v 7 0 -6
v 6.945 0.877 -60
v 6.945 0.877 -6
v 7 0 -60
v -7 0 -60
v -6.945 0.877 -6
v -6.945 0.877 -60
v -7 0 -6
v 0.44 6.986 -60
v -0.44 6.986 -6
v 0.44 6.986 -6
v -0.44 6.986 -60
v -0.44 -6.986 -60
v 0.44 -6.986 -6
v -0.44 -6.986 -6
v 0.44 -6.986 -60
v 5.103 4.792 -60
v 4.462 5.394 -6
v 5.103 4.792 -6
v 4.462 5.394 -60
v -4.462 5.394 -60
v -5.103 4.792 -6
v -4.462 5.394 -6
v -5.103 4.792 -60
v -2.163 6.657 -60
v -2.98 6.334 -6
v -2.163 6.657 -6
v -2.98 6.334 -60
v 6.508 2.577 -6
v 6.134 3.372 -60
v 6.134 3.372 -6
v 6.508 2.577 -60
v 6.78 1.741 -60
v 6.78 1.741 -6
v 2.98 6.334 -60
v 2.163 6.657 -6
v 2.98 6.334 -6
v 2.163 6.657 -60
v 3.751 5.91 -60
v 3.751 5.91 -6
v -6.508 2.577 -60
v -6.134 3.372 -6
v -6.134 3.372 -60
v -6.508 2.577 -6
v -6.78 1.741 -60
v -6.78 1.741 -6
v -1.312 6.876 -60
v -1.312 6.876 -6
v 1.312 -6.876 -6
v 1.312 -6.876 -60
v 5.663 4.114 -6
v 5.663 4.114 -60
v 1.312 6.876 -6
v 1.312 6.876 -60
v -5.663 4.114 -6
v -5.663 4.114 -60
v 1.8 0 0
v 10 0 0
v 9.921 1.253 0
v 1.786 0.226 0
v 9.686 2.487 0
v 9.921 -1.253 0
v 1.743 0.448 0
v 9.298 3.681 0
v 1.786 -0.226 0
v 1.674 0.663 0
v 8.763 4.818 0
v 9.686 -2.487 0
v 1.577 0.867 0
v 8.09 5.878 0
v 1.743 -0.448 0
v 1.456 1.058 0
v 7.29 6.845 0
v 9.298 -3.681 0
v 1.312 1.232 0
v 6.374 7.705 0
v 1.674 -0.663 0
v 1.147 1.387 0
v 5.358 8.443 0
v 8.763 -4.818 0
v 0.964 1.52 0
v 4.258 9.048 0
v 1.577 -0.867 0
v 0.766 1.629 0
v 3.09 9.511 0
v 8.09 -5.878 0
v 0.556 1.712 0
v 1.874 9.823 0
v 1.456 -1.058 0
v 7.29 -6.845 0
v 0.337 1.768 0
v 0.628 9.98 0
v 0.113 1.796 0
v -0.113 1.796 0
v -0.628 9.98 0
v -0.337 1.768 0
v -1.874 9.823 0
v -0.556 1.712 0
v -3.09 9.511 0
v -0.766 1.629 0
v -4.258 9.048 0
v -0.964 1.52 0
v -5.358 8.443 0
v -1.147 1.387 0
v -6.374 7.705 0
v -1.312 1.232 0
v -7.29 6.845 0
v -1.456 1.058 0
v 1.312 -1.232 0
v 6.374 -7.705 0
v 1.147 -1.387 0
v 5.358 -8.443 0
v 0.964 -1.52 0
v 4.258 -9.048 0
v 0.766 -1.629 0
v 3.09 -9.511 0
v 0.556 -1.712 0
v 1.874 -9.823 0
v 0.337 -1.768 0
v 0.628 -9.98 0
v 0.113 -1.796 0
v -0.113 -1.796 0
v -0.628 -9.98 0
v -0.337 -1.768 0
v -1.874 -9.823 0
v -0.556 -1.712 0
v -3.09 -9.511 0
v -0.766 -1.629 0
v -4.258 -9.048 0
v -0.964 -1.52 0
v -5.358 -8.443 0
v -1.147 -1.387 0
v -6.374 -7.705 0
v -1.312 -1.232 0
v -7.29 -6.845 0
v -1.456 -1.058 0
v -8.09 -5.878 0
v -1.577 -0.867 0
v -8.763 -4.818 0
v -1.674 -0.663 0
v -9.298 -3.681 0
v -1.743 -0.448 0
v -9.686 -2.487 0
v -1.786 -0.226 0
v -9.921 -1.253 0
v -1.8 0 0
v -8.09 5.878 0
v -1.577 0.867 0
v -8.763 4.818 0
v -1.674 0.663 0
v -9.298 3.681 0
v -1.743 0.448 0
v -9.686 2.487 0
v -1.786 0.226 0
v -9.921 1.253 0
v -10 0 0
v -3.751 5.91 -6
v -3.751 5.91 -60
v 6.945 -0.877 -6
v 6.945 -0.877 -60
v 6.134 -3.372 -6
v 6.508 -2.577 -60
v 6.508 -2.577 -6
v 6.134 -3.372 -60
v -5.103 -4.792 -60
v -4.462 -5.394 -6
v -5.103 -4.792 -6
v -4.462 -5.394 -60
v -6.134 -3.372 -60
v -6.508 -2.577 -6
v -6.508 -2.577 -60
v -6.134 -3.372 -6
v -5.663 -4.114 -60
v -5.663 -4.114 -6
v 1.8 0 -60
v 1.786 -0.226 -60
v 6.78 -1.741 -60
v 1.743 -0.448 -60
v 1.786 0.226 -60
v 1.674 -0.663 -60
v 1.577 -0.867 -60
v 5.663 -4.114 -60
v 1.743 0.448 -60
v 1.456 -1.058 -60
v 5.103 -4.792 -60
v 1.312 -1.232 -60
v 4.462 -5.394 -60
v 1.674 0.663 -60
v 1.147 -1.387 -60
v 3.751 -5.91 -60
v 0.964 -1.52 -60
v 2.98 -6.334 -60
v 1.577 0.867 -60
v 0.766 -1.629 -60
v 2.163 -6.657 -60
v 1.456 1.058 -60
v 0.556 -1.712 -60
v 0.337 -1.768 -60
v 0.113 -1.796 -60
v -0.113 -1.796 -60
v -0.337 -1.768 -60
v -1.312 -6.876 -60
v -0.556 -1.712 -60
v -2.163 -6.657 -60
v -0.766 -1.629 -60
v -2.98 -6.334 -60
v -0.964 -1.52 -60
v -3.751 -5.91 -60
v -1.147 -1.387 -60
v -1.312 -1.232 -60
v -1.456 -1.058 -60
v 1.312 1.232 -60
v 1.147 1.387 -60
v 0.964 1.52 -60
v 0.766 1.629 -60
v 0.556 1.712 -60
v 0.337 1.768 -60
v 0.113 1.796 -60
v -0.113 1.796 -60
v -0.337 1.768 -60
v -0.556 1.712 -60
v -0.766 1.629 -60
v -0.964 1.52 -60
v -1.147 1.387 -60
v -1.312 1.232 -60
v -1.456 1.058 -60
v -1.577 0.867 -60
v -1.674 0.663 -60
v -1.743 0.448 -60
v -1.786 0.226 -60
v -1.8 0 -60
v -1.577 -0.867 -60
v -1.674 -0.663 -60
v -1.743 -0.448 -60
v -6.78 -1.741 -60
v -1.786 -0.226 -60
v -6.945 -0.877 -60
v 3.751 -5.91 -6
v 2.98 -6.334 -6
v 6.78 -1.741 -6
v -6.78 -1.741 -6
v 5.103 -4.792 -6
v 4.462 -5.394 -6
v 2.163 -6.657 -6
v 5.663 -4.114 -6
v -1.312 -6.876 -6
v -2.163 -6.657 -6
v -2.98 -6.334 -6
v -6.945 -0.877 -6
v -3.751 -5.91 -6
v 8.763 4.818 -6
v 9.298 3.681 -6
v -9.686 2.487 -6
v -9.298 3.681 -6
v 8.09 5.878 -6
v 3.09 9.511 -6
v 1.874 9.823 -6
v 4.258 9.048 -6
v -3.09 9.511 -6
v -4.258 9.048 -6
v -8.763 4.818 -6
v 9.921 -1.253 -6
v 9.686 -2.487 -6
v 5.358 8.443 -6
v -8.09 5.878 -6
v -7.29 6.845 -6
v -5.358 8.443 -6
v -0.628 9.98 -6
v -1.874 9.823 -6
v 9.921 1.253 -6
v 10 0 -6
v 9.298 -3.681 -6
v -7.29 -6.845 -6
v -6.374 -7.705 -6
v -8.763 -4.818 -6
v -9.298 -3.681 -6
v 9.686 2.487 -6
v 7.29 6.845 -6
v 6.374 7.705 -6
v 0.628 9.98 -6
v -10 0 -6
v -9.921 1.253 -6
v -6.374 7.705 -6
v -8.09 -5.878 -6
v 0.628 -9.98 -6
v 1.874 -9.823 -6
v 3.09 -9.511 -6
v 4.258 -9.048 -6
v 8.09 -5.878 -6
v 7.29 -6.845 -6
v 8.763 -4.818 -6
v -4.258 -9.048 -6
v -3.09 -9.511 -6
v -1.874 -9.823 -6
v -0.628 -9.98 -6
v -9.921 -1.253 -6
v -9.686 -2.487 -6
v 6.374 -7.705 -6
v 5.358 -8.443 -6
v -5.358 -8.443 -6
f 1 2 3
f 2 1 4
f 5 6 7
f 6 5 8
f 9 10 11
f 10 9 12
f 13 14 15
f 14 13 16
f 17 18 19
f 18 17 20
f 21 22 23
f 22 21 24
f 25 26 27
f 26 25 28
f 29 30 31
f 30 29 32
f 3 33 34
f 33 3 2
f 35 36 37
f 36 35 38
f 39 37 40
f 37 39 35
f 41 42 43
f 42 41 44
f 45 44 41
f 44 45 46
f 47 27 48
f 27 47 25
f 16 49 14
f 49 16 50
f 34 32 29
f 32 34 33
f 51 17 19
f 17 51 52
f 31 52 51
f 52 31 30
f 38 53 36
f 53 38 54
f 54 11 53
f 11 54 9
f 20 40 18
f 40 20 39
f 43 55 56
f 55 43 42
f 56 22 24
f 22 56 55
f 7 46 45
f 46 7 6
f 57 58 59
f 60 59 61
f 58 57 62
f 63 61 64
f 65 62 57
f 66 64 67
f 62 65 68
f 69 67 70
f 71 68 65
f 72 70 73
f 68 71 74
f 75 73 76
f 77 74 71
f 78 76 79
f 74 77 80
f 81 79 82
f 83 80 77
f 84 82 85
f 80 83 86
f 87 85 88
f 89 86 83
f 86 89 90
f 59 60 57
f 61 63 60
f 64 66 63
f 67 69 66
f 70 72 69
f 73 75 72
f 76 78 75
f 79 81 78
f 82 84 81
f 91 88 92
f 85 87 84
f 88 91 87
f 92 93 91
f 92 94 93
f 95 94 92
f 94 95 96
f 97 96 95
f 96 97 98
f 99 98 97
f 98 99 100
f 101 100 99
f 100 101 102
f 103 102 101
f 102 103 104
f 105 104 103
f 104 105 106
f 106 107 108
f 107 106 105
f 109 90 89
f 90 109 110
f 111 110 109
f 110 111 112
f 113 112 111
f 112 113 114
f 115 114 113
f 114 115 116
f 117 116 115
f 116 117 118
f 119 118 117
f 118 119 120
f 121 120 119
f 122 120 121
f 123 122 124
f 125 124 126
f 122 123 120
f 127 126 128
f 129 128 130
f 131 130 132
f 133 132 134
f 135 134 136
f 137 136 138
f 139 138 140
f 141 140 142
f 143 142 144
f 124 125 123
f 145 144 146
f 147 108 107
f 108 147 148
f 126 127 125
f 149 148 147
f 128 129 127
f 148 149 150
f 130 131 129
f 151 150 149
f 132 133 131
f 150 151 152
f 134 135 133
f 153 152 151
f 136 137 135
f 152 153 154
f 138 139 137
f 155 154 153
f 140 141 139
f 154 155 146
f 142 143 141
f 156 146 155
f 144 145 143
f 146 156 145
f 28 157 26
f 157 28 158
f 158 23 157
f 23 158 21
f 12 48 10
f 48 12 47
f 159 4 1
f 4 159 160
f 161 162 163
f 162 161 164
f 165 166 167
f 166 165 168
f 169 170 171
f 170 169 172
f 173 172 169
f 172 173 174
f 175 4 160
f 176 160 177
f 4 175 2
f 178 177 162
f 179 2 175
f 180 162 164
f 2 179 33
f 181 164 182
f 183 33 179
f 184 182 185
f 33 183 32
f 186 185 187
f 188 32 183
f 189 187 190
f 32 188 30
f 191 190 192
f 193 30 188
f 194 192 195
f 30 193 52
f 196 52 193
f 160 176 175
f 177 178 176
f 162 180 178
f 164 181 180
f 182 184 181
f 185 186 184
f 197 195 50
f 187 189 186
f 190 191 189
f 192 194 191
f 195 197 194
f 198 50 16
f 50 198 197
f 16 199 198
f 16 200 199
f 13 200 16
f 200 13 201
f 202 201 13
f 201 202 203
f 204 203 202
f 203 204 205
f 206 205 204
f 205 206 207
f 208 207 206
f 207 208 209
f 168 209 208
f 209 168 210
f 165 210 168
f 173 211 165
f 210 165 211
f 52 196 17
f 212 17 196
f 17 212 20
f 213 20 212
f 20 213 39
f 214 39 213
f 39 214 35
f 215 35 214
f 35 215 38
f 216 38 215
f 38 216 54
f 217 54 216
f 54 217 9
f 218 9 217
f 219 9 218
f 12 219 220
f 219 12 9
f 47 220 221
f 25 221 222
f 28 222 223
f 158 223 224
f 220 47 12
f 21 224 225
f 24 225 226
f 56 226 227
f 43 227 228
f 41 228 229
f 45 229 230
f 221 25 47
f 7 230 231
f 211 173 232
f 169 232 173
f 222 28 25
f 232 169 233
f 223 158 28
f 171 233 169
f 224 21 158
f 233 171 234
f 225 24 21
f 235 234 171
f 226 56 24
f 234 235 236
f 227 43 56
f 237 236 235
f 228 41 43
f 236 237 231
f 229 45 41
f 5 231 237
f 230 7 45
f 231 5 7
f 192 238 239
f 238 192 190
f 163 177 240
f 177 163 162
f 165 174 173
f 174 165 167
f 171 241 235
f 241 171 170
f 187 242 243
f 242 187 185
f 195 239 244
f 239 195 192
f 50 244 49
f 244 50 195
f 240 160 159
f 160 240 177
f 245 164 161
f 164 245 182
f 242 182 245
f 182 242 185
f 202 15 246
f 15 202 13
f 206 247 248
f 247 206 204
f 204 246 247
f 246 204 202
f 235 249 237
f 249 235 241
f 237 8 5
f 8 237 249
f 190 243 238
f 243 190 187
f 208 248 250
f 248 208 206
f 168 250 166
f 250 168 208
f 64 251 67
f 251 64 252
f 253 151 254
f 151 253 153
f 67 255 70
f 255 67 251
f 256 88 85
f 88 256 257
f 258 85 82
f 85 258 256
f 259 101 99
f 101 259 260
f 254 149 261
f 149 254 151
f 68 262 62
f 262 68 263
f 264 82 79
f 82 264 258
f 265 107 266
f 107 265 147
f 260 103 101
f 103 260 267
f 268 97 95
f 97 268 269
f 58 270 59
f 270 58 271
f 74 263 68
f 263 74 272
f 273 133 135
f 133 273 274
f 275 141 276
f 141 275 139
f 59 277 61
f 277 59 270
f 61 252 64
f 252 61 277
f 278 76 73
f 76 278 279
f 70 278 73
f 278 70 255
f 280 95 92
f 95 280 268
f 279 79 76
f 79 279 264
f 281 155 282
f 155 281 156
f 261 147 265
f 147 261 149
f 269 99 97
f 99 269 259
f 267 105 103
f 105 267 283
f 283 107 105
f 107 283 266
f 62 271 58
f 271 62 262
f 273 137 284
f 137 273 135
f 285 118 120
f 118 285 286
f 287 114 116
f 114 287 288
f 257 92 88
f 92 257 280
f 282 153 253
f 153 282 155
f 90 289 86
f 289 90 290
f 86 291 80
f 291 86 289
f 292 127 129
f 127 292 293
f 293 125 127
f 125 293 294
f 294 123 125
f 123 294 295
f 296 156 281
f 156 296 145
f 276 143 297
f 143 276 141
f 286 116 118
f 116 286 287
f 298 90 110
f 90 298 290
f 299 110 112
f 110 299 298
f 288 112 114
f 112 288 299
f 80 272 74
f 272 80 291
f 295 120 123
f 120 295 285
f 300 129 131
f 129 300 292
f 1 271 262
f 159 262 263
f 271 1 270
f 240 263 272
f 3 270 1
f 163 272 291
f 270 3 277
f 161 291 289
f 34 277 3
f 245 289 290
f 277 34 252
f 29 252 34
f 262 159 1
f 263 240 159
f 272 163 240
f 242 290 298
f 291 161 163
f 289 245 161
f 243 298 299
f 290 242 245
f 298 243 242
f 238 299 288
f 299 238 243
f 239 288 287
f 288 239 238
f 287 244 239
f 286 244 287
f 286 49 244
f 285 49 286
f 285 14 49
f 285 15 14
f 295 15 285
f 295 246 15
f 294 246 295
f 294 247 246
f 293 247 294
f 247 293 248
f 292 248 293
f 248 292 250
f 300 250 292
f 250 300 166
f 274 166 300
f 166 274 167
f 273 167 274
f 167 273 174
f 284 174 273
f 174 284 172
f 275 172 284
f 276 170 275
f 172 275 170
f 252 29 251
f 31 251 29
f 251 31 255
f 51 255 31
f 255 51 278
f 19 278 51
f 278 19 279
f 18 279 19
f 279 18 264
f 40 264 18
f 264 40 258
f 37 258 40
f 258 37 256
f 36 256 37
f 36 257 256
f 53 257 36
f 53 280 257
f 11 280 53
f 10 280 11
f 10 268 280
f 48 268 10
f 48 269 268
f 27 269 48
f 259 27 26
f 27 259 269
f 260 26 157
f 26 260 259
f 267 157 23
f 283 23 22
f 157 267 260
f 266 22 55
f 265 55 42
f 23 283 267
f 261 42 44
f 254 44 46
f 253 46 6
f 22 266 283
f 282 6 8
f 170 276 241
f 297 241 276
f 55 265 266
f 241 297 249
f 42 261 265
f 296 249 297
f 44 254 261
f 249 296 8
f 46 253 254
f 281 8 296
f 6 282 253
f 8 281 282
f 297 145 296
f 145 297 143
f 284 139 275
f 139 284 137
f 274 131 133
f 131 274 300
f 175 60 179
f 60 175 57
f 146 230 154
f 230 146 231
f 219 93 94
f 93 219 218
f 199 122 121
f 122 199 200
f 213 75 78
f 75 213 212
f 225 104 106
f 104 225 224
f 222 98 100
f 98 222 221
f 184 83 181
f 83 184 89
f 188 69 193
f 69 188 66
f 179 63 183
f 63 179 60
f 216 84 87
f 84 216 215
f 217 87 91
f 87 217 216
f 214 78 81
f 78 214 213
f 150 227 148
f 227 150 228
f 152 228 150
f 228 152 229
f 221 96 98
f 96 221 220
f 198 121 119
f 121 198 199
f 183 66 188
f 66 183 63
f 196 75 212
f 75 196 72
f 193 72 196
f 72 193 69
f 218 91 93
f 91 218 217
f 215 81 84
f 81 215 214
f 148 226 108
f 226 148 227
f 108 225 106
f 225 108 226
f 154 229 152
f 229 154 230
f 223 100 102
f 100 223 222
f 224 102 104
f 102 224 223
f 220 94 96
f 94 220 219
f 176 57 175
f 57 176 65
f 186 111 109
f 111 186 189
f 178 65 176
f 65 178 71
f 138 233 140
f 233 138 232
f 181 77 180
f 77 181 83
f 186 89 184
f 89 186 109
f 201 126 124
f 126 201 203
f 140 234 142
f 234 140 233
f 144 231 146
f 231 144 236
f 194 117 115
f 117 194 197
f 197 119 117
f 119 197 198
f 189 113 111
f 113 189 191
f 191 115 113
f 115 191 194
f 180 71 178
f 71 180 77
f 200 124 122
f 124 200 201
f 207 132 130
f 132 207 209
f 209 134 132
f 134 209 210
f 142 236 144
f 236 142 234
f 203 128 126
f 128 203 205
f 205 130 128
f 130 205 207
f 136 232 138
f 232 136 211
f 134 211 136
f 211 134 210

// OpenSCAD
$fn = 50;


difference() {
	union() {
		translate(v = [0, 0, -60.0000000000]) {
			cylinder(h = 60, r = 7.0000000000);
		}
		translate(v = [0, 0, -6.0000000000]) {
			cylinder(h = 6, r = 10.0000000000);
		}
	}
	union() {
		#translate(v = [0, 0, -60]) {
			cylinder(h = 60, r = 1.8000000000);
		}
	}
}
